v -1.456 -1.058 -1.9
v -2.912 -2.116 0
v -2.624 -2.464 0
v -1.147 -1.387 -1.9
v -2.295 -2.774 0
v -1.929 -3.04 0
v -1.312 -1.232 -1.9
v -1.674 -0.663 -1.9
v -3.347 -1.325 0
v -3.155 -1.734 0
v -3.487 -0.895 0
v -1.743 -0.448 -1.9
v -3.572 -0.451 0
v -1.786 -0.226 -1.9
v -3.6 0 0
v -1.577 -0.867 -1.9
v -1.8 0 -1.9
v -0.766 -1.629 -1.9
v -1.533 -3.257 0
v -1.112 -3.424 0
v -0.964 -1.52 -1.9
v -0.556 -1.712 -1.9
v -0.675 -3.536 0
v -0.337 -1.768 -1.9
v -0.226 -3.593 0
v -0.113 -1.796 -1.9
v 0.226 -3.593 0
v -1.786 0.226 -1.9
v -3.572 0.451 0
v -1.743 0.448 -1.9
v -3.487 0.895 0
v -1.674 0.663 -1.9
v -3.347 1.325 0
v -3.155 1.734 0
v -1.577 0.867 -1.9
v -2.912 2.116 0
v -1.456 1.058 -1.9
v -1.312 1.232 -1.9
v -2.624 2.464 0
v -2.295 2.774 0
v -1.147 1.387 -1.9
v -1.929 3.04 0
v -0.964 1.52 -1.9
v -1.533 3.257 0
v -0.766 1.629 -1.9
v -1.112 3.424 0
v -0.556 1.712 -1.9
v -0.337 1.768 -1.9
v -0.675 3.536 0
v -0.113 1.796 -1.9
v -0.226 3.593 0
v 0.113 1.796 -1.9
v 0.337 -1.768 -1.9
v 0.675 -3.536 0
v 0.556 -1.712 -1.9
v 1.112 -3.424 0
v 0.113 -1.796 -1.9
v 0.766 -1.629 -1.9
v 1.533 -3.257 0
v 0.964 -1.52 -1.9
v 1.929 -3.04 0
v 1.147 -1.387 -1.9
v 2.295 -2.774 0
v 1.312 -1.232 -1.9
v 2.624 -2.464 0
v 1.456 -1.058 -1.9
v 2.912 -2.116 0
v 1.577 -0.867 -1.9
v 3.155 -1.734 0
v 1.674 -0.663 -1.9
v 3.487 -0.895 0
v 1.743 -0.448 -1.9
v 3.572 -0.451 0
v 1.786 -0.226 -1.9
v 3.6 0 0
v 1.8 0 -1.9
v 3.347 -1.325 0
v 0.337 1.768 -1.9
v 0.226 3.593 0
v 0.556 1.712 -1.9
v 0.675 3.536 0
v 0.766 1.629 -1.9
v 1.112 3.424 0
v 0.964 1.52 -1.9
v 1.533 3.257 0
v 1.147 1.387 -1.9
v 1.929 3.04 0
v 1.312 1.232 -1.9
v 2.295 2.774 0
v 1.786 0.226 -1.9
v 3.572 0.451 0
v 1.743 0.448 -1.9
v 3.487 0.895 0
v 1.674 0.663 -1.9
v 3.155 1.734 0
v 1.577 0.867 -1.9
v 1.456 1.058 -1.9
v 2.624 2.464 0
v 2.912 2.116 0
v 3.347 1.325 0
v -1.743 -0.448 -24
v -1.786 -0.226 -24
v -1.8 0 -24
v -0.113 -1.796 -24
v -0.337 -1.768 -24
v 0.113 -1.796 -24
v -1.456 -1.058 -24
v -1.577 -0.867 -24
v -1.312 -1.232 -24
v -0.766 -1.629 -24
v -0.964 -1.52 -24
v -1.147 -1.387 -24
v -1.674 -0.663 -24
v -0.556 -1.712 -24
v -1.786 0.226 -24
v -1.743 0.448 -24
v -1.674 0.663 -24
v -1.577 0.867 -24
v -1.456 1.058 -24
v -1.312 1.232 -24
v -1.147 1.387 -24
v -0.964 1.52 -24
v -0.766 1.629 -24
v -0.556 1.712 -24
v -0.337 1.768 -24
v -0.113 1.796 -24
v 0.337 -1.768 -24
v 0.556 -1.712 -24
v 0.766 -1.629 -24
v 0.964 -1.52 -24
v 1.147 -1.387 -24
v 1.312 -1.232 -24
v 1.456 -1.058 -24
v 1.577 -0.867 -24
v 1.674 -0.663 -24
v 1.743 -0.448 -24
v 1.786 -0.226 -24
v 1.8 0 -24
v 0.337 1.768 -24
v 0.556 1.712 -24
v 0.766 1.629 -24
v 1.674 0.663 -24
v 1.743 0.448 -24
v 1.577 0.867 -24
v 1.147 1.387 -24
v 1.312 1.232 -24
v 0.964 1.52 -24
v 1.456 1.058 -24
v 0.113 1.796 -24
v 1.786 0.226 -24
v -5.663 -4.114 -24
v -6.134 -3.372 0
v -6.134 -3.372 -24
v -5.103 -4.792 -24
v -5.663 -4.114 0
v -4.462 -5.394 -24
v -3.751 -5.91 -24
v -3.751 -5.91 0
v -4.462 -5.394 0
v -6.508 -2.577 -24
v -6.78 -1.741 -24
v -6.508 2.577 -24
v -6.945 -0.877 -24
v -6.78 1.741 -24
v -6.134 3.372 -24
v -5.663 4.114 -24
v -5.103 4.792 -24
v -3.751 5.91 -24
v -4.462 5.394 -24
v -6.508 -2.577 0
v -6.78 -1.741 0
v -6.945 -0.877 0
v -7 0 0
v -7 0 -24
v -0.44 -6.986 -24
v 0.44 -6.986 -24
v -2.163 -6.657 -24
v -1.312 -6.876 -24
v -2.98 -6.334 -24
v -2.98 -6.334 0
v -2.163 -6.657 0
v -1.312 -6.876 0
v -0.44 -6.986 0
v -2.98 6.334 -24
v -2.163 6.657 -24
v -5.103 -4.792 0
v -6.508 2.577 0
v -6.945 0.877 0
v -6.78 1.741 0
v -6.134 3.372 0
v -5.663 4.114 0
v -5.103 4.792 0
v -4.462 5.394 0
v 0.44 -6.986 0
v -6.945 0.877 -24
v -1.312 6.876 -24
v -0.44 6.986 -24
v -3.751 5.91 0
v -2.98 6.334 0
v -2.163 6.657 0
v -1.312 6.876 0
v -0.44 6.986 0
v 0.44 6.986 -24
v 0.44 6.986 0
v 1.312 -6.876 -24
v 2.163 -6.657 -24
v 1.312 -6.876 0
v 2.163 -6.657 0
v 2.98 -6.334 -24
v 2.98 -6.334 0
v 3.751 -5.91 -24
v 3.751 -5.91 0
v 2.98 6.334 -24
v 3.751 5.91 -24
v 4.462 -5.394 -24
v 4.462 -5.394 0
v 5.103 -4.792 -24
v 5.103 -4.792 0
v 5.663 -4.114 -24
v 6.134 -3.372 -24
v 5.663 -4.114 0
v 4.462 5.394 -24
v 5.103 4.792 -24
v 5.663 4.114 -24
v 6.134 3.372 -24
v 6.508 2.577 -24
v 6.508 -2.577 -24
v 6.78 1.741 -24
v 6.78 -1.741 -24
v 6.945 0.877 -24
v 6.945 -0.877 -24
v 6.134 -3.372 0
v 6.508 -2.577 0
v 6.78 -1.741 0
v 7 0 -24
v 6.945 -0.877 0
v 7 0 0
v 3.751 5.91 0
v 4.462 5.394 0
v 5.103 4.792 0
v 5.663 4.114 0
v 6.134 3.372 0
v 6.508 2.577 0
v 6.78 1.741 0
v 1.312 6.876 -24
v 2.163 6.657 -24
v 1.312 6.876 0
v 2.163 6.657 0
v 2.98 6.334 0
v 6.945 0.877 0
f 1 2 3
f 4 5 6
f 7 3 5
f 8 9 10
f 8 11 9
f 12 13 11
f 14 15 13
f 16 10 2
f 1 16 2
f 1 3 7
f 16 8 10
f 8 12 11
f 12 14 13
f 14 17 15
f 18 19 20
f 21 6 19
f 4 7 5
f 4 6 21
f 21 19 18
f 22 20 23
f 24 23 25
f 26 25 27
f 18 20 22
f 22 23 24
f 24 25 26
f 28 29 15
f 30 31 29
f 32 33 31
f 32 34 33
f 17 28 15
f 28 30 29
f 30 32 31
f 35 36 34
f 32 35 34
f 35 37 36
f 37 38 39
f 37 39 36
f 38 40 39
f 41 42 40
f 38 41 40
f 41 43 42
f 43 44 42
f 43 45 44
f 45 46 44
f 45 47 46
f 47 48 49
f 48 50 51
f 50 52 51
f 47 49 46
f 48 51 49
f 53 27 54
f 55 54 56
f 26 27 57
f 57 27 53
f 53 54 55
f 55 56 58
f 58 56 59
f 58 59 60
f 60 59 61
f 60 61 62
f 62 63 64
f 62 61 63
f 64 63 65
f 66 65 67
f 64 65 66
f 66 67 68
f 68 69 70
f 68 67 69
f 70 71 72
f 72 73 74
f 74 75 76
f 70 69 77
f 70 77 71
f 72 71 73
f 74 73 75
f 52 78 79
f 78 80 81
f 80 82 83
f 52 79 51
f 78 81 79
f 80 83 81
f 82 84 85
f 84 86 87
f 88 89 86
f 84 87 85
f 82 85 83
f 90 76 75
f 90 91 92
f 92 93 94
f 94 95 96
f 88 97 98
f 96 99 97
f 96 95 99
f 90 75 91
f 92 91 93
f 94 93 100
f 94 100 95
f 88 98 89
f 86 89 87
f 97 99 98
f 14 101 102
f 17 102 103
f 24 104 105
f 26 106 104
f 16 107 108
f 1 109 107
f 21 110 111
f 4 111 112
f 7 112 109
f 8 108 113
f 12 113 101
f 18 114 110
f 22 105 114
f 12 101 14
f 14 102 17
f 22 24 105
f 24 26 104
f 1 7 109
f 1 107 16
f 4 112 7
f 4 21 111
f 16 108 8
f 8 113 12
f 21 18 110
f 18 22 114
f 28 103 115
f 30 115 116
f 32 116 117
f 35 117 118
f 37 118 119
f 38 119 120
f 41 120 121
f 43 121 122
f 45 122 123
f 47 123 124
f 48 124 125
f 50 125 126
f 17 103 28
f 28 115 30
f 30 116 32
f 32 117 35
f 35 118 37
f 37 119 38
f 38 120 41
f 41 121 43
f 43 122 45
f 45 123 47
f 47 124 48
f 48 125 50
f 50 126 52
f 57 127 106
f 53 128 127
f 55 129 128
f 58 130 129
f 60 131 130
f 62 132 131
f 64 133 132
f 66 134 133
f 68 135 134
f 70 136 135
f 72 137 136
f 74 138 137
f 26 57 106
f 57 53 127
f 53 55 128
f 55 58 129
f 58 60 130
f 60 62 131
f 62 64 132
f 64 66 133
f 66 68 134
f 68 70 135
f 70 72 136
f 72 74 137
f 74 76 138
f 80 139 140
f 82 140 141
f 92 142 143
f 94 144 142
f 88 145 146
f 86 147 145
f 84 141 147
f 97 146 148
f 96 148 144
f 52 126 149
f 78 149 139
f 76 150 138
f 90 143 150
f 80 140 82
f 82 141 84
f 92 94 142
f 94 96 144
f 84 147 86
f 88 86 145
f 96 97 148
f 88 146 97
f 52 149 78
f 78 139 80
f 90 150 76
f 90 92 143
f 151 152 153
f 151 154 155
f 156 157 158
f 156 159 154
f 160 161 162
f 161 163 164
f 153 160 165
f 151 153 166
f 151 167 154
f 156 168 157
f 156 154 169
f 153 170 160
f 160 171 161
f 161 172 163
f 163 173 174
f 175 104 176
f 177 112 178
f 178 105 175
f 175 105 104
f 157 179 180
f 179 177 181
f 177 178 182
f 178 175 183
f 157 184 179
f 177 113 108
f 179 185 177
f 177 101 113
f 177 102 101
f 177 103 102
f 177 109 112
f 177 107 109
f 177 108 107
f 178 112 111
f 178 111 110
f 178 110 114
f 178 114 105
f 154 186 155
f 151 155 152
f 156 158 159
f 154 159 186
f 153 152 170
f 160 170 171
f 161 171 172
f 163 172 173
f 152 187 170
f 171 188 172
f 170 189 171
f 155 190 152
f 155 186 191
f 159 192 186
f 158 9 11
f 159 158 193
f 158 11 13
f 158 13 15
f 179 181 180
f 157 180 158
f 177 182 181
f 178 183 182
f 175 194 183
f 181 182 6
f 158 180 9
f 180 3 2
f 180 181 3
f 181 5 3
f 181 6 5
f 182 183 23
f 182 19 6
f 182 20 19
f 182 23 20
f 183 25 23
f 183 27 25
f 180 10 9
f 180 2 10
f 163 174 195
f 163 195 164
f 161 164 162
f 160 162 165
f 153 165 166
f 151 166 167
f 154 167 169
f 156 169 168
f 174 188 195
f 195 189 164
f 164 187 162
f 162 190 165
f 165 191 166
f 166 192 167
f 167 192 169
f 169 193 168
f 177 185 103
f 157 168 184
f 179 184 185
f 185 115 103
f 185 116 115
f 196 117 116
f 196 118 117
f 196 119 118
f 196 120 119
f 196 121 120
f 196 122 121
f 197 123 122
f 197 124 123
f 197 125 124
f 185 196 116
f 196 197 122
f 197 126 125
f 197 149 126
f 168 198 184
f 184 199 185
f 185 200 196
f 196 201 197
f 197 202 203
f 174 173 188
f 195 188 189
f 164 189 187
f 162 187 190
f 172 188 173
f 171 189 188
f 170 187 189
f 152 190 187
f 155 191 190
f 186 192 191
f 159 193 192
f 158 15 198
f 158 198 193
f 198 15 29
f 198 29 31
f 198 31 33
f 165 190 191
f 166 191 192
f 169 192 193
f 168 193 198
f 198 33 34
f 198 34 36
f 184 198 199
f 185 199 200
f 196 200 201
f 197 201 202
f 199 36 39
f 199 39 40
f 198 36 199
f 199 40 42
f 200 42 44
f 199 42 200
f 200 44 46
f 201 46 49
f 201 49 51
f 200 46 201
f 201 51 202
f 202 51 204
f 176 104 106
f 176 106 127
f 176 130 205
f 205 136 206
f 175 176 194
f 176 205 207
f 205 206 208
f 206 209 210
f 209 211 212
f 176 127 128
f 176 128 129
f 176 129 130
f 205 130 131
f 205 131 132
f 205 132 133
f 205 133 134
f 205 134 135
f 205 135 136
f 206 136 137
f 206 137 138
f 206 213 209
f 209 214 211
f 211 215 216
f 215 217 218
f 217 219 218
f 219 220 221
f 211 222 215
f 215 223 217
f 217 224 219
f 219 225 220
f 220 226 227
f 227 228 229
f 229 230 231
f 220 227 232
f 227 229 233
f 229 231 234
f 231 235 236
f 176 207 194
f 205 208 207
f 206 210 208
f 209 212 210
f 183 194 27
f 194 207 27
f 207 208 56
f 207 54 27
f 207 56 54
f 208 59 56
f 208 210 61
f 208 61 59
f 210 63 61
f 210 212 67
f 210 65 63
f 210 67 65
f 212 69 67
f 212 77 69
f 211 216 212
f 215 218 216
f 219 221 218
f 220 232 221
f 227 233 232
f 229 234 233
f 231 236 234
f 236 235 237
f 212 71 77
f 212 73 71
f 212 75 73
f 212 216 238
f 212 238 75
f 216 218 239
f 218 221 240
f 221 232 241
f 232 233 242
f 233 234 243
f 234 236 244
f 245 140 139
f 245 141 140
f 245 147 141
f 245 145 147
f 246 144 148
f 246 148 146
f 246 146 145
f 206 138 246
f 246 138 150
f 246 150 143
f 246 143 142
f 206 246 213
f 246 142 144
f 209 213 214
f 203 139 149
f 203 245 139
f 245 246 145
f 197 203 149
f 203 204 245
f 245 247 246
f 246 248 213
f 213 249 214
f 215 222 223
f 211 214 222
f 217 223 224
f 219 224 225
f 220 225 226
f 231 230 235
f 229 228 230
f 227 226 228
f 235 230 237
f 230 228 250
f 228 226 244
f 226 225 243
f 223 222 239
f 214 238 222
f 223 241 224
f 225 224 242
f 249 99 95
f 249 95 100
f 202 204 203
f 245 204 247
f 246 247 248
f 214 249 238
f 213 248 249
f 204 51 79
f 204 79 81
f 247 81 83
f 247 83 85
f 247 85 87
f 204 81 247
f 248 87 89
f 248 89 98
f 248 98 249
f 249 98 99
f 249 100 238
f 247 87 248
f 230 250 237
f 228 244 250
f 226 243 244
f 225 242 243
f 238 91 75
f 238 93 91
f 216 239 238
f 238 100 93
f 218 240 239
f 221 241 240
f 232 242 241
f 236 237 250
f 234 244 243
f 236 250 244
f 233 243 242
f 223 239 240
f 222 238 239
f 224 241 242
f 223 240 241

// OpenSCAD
$fn = 50;

difference() {
	union() {
		translate(v = [0, 0, -24.0]) {
			cylinder(h = 24, r = 7.0);
		}
	}
	union() {
		translate(v = [0, 0, 0]) {
			rotate(a = [0, 0, 0]) {
				difference() {
					union() {
						translate(v = [0, 0, -27.0]) {
							cylinder(h = 27, r = 1.5);
						}
						translate(v = [0, 0, -1.9]) {
							cylinder(h = 1.9, r1 = 1.8, r2 = 3.6);
						}
						translate(v = [0, 0, -27.0]) {
							cylinder(h = 27, r = 1.8);
						}
						translate(v = [0, 0, -27.0]) {
							cylinder(h = 27, r = 1.5);
						}
					}
					union();
				}
			}
		}
	}
}
